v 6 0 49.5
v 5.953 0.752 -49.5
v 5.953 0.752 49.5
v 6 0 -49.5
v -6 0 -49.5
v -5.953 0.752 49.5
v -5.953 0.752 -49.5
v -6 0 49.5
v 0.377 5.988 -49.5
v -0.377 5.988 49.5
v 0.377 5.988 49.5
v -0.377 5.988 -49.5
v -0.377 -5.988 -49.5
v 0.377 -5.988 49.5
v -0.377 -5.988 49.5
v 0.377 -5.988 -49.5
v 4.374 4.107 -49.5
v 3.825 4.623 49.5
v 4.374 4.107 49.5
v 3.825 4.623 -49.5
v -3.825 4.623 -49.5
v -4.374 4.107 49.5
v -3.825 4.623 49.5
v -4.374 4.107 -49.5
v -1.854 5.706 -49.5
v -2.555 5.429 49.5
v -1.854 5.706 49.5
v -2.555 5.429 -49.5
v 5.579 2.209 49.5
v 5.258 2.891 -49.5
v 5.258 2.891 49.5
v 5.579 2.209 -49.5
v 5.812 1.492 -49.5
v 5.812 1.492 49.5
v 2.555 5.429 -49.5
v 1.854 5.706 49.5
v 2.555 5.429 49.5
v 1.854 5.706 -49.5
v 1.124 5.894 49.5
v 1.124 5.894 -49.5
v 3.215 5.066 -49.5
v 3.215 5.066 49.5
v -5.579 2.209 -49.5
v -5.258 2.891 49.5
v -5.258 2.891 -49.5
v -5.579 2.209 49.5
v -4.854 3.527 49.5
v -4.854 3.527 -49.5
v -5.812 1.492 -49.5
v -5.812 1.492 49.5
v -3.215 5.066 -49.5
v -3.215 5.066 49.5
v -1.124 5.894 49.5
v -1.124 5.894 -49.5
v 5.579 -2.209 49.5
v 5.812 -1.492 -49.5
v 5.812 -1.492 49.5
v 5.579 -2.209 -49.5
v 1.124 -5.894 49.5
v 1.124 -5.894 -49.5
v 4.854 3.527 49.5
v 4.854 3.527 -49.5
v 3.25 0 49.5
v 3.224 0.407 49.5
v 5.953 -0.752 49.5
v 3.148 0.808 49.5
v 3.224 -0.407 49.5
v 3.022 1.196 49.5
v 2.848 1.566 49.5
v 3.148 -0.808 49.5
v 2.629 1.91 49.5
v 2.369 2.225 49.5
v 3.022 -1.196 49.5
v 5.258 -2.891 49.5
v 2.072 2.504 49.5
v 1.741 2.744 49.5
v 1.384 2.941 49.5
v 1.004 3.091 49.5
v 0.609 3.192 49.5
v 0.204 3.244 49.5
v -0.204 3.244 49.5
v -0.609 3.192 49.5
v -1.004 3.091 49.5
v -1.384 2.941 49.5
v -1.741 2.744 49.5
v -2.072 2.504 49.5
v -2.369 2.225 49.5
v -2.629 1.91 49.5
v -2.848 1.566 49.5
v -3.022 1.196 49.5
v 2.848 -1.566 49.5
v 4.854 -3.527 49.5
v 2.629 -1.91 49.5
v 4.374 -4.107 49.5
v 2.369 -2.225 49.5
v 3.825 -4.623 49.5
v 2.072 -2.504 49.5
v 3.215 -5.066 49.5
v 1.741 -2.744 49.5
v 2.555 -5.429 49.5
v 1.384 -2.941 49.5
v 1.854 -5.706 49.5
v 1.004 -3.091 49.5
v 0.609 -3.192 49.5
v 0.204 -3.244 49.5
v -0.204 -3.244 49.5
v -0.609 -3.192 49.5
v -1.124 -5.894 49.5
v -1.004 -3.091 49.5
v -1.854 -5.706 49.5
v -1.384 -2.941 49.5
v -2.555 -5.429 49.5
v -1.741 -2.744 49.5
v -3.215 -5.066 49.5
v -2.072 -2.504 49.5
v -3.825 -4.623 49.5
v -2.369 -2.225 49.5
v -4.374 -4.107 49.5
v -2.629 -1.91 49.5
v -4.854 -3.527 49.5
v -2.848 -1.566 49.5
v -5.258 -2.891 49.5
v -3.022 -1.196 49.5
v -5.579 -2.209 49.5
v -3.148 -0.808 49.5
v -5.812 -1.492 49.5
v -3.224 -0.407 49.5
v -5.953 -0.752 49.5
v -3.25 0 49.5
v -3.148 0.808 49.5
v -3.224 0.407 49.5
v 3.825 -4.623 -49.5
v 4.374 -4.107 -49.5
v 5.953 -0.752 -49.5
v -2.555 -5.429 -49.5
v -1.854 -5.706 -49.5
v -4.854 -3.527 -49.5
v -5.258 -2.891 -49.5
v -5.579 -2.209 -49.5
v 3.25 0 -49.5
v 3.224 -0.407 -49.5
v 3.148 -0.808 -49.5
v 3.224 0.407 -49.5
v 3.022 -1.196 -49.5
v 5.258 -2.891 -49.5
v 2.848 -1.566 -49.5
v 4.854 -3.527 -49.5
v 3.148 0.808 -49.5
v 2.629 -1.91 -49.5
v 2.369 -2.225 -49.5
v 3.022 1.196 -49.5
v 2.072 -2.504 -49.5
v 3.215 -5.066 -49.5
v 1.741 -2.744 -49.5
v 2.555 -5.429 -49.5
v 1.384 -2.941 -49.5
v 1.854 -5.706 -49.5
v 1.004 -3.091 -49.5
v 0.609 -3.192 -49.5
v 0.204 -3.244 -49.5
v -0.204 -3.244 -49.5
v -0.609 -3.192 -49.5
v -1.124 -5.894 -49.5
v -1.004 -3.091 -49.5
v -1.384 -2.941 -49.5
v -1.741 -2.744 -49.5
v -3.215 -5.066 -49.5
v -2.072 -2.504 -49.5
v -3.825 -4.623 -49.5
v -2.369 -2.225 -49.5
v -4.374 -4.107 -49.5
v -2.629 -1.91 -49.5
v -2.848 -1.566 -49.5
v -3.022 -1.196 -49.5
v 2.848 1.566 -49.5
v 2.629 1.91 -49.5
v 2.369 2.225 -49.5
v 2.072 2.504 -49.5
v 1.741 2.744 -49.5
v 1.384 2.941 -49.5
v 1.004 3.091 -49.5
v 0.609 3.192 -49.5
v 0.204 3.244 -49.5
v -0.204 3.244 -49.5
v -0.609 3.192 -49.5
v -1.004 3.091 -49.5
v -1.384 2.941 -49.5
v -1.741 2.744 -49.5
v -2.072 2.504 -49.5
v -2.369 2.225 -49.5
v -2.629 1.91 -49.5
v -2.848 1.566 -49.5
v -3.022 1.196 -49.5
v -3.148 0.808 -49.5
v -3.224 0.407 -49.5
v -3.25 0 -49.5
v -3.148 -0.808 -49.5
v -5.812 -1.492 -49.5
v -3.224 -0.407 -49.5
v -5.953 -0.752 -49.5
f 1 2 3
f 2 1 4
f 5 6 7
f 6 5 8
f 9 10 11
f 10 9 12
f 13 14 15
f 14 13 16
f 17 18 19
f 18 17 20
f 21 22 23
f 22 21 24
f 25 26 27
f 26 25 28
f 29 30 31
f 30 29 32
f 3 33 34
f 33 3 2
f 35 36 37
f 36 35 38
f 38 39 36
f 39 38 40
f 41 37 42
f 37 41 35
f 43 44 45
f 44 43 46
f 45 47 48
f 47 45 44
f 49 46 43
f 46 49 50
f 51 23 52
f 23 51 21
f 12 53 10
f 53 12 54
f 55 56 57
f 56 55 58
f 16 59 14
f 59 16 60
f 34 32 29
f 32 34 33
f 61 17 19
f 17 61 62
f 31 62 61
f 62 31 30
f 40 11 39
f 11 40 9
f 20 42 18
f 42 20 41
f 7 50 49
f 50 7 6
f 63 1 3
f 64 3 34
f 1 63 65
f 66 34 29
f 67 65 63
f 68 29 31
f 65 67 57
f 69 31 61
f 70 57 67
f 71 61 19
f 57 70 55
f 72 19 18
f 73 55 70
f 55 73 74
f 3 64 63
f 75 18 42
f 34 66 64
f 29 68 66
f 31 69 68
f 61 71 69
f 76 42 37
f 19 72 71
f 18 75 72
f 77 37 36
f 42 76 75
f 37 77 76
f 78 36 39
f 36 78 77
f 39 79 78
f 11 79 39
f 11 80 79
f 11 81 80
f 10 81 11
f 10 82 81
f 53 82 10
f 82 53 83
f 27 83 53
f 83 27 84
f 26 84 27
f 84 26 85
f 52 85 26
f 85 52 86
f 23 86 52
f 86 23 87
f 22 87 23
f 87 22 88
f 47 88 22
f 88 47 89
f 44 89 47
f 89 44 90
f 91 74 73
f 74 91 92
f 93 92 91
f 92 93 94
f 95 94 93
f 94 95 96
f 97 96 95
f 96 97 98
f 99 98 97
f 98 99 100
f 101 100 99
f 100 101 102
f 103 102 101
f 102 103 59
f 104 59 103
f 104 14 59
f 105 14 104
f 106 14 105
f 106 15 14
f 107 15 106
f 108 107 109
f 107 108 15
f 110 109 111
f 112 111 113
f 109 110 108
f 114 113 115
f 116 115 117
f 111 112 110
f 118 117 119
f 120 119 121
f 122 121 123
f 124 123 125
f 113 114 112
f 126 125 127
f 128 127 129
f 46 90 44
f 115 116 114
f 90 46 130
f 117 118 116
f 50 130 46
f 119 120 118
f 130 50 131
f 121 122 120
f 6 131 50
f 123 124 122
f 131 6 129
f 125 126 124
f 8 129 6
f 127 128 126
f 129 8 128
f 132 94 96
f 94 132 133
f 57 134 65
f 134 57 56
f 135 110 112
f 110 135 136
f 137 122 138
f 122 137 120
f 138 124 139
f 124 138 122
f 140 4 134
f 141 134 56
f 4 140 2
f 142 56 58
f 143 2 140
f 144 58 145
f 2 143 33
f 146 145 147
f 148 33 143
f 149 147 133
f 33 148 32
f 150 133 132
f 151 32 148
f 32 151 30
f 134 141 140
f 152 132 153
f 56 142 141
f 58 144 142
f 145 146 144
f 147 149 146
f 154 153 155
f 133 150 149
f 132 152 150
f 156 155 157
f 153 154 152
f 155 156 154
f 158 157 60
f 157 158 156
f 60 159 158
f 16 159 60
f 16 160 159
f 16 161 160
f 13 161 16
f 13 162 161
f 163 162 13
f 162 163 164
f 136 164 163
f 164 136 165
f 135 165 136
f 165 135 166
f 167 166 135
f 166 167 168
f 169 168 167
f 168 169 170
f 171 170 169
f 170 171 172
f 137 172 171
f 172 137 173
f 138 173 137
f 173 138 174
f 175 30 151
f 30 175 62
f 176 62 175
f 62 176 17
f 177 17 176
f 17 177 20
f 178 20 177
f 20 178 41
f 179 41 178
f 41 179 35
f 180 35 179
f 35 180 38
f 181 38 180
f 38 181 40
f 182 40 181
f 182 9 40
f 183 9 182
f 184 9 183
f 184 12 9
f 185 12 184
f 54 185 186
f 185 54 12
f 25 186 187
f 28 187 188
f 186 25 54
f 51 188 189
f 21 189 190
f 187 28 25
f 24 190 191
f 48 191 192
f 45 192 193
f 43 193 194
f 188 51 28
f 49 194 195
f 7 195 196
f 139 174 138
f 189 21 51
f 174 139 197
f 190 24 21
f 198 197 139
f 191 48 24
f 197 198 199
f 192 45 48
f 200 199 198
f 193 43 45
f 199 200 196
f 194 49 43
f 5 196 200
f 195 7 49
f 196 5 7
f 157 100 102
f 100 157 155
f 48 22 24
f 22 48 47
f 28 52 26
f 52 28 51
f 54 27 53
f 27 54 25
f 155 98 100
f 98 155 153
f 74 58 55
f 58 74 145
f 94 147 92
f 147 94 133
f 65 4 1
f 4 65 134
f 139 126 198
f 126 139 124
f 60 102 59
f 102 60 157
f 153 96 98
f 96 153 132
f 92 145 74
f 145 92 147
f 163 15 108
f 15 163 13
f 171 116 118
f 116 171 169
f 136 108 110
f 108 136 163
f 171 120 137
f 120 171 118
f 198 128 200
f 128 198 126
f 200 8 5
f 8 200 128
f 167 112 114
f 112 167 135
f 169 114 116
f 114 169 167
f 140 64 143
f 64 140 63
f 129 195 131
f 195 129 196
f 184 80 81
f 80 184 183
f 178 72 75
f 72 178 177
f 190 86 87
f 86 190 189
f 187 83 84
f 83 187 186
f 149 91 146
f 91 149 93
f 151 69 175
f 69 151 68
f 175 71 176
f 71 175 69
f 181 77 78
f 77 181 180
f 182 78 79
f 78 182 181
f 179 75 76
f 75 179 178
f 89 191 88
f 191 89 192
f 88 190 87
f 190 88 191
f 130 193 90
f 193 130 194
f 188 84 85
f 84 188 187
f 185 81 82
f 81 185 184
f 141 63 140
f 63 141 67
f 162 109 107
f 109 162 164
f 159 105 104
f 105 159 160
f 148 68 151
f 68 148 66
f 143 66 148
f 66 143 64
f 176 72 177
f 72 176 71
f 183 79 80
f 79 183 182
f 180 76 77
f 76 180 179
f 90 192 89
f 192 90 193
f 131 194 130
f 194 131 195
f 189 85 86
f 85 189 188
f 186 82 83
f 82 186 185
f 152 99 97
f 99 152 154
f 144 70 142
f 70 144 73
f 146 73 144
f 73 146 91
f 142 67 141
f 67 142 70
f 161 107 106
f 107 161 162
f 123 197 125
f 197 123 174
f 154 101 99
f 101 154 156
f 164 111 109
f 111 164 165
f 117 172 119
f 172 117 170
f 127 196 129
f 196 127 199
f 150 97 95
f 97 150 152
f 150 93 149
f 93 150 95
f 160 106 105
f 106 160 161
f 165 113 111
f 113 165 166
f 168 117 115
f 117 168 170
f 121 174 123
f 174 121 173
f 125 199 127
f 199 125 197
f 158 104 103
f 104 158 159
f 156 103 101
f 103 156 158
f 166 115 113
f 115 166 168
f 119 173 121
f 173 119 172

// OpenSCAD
$fn = 50;


difference() {
	union() {
		translate(v = [0, 0, -49.5000000000]) {
			cylinder(h = 99, r = 6.0000000000);
		}
	}
	union() {
		translate(v = [0, 0, -100.0000000000]) {
			cylinder(h = 200, r = 3.2500000000);
		}
	}
}
